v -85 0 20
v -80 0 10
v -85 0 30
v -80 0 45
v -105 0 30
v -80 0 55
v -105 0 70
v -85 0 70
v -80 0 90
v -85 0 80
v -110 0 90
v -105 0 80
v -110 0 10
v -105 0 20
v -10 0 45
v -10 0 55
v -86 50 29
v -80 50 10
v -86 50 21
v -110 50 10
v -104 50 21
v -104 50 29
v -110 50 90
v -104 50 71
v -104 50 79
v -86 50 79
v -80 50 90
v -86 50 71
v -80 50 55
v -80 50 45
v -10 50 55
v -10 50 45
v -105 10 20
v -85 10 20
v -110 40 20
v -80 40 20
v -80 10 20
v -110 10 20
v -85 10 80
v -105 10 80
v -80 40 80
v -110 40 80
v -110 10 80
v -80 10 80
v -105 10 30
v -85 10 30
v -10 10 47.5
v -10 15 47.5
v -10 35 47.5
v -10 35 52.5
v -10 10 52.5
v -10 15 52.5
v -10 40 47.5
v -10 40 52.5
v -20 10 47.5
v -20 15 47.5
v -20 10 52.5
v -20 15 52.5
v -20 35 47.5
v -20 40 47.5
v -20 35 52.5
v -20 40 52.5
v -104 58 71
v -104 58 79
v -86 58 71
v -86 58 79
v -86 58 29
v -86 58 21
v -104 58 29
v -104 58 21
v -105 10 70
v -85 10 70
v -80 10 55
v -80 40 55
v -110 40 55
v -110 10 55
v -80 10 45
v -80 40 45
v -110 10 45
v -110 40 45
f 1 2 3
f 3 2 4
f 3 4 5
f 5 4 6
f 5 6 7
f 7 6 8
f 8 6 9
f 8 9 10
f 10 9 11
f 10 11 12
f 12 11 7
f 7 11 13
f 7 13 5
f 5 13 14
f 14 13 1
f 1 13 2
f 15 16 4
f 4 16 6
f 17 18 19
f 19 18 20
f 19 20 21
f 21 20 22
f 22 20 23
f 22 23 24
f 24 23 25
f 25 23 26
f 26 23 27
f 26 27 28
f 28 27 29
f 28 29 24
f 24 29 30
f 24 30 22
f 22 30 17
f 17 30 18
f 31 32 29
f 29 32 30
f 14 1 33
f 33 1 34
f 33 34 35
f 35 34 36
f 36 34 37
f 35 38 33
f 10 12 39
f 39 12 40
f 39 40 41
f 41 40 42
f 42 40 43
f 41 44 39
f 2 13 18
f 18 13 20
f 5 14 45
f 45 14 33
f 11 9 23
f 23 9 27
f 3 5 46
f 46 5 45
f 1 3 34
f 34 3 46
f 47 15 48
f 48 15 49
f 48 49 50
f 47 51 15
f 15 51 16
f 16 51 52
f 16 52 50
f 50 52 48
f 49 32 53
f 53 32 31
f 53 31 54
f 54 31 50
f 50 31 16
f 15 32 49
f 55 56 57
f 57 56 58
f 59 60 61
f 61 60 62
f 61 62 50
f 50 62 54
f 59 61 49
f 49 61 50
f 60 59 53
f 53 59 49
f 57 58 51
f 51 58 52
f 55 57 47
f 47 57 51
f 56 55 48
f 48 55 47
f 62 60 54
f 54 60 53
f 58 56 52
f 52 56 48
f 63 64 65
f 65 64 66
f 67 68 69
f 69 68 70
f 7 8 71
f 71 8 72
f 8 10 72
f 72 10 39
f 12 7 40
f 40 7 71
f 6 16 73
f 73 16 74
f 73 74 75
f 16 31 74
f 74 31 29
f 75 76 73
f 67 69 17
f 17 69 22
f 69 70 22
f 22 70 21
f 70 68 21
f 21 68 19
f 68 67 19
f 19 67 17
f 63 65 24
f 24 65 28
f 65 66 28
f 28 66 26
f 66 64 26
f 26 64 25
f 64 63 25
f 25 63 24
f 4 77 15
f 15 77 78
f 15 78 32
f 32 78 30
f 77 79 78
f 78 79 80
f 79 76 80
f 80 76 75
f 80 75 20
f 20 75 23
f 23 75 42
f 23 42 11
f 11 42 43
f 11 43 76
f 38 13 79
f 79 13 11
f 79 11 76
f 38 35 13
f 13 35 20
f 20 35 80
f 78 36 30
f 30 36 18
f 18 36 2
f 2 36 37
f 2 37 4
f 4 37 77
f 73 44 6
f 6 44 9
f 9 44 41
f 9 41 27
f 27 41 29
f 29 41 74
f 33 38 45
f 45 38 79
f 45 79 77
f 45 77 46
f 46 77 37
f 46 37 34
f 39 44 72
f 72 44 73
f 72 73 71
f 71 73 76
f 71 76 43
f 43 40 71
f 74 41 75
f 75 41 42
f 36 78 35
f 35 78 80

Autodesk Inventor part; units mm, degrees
ref_plane "YZ Plane" through (0, 0, 0) normal (1, 0, 0) x (0, 1, 0)
ref_plane "XZ Plane" through (0, 0, 0) normal (0, 1, 0) x (-1, 0, 0)
ref_plane "XY Plane" through (0, 0, 0) normal (0, 0, 1) x (1, 0, 0)
sketch "Sketch1" plane through (0, 0, 0) normal (0, 1, 0) x (-1, 0, 0)
  line L0 (-10, -55) -> (-160, -55)
  line L1 (-160, -55) -> (-160, -45)
  line L2 (-160, -45) -> (-10, -45)
  line L3 (-10, -45) -> (-10, -55)
  line L4 (10, -55) -> (80, -55)
  line L5 (80, -55) -> (80, -90)
  line L6 (80, -90) -> (110, -90)
  line L7 (110, -90) -> (110, -10)
  line L8 (110, -10) -> (80, -10)
  line L9 (80, -10) -> (80, -45)
  line L10 (80, -45) -> (10, -45)
  line L11 (10, -45) -> (10, -55)
  line L12 (0, -122.2654) -> (0, -189.4683)
  line L13 (-10, 55) -> (-10, 45)
  line L14 (10, 55) -> (10, 45)
  line L15 (80, 10) -> (110, 10)
  line L16 (10, 45) -> (80, 45)
  line L17 (80, 45) -> (80, 10)
  line L18 (80, 55) -> (10, 55)
  line L19 (80, 90) -> (80, 55)
  line L20 (110, 10) -> (110, 90)
  line L21 (110, 90) -> (80, 90)
  line L22 (-160, 55) -> (-10, 55)
  line L23 (-160, 45) -> (-160, 55)
  line L24 (-10, 45) -> (-160, 45)
  point P0 (0, 0)
  dimension "d0" = 10
  dimension "d1" = 80
  dimension "d2" = 10
  dimension "d4" = 30
  dimension "d5" = 30
  dimension "d6" = 35
  dimension "d7" = 35
  dimension "d8" = 45
  dimension "d9" = 10
  dimension "d10" = 10
  dimension "d11" = 150
  dimension "d12" = 100
  dimension "d13" = 0
  dimension "d16" = 100
extrude "Extrusion1" add sketch "Sketch1" along normal blind 50
sketch "Sketch2" plane through (160, 0, 55) normal (1, 0, 0) x (0, 0, -1)
  line L0 (2.5, 40) -> (7.5, 40)
  line L1 (7.5, 40) -> (7.5, 35)
  line L2 (7.5, 35) -> (2.5, 35)
  line L3 (2.5, 35) -> (2.5, 40)
  line L4 (0, 50) -> (10, 50) projected
  line L5 (10, 0) -> (10, 50) projected
  line L6 (2.5, 15) -> (7.5, 15)
  line L7 (7.5, 15) -> (7.5, 10)
  line L8 (7.5, 10) -> (2.5, 10)
  line L9 (2.5, 10) -> (2.5, 15)
  line L10 (102.5, 40) -> (107.5, 40)
  line L11 (107.5, 40) -> (107.5, 35)
  line L12 (107.5, 35) -> (102.5, 35)
  line L13 (102.5, 35) -> (102.5, 40)
  line L14 (102.5, 15) -> (107.5, 15)
  line L15 (107.5, 15) -> (107.5, 10)
  line L16 (107.5, 10) -> (102.5, 10)
  line L17 (102.5, 10) -> (102.5, 15)
  point P0 (55, 0)
  dimension "d23" = 10
  dimension "d24" = 5
  dimension "d25" = 2.5
  dimension "d26" = 5
  dimension "d29" = 25
  dimension "d32" = 100
extrude "Extrusion2" cut sketch "Sketch2" against normal blind 200
sketch "Sketch3" plane through (0, 50, 0) normal (0, 1, 0) x (1, 0, 0)
  line L0 (-105, -20) -> (-85, -20)
  line L1 (-85, -20) -> (-85, -30)
  line L2 (-85, -30) -> (-105, -30)
  line L3 (-105, -30) -> (-105, -20)
  line L4 (-110, -10) -> (-110, -90) projected
  line L5 (-105, -70) -> (-85, -70)
  line L6 (-85, -70) -> (-85, -80)
  line L7 (-85, -80) -> (-105, -80)
  line L8 (-105, -80) -> (-105, -70)
  line L9 (-105, 80) -> (-85, 80)
  line L10 (-85, 80) -> (-85, 70)
  line L11 (-85, 70) -> (-105, 70)
  line L12 (-105, 70) -> (-105, 80)
  line L13 (-105, 30) -> (-85, 30)
  line L14 (-85, 30) -> (-85, 20)
  line L15 (-85, 20) -> (-105, 20)
  line L16 (-105, 20) -> (-105, 30)
  point P0 (0, 0)
  dimension "d37" = 20
  dimension "d38" = 10
  dimension "d39" = 20
  dimension "d40" = 85
  dimension "d43" = 50
  dimension "d46" = 100
extrude "Extrusion3" add sketch "Sketch3" along normal blind 8
sketch "Sketch4" plane through (0, 0, 0) normal (0, -1, 0) x (1, 0, 0)
  line L0 (-105, -70) -> (-85, -70) projected
  line L1 (-85, -70) -> (-85, -80) projected
  line L2 (-85, -80) -> (-105, -80) projected
  line L3 (-105, -80) -> (-105, -70) projected
  line L4 (-105, -20) -> (-85, -20) projected
  line L5 (-85, -20) -> (-85, -30) projected
  line L6 (-85, -30) -> (-105, -30) projected
  line L7 (-105, -30) -> (-105, -20) projected
  line L8 (-105, 30) -> (-85, 30) projected
  line L9 (-85, 30) -> (-85, 20) projected
  line L10 (-85, 20) -> (-105, 20) projected
  line L11 (-105, 20) -> (-105, 30) projected
  line L12 (-105, 80) -> (-85, 80) projected
  line L13 (-85, 80) -> (-85, 70) projected
  line L14 (-85, 70) -> (-105, 70) projected
  line L15 (-105, 70) -> (-105, 80) projected
  line L16 (-85, 80) -> (-105, 80)
  line L17 (-105, 80) -> (-105, 70)
  line L18 (-105, 70) -> (-85, 70)
  line L19 (-85, 70) -> (-85, 80)
  line L20 (-85, 30) -> (-105, 30)
  line L21 (-105, 30) -> (-105, 20)
  line L22 (-105, 20) -> (-85, 20)
  line L23 (-85, 20) -> (-85, 30)
  line L24 (-85, -20) -> (-105, -20)
  line L25 (-105, -20) -> (-105, -30)
  line L26 (-105, -30) -> (-85, -30)
  line L27 (-85, -30) -> (-85, -20)
  line L28 (-85, -70) -> (-105, -70)
  line L29 (-105, -70) -> (-105, -80)
  line L30 (-105, -80) -> (-85, -80)
  line L31 (-85, -80) -> (-85, -70)
  point P0 (0, 0)
extrude "Extrusion4" cut sketch "Sketch4" against normal blind 10
sketch "Sketch5" plane through (10, 0, 55) normal (0, 0, 1) x (1, 0, 0)
  line L0 (0, 0) -> (0, 50) projected
  line L1 (0, 50) -> (150, 50) projected
  line L2 (150, 0) -> (150, 50) projected
  line L3 (0, 0) -> (150, 0) projected
  line L4 (0, 35) -> (0, 40) projected
  line L5 (150, 35) -> (0, 35) projected
  line L6 (150, 40) -> (150, 35) projected
  line L7 (150, 40) -> (0, 40) projected
  line L8 (0, 10) -> (0, 15) projected
  line L9 (150, 10) -> (0, 10) projected
  line L10 (150, 15) -> (150, 10) projected
  line L11 (150, 15) -> (0, 15) projected
  line L12 (10, 40) -> (140, 40)
  line L13 (140, 40) -> (140, 35)
  line L14 (140, 35) -> (10, 35)
  line L15 (10, 35) -> (10, 40)
  line L16 (10, 15) -> (140, 15)
  line L17 (140, 15) -> (140, 10)
  line L18 (140, 10) -> (10, 10)
  line L19 (10, 10) -> (10, 15)
  point P0 (-10, 0)
  point P1 (10, 10)
  dimension "d53" = 10
  dimension "d54" = 10
  dimension "d55" = 10
  dimension "d56" = 10
extrude "Extrusion5" add sketch "Sketch5" against normal blind 10 contours L19 L11 L17 L9 | L15 L7 L13 L5
sketch "Sketch6" plane through (160, 0, -55) normal (0, 0, -1) x (-1, 0, 0)
  line L0 (150, 40) -> (150, 35) projected
  line L1 (0, 40) -> (150, 40) projected
  line L2 (0, 35) -> (0, 40) projected
  line L3 (0, 35) -> (150, 35) projected
  line L4 (150, 15) -> (150, 10) projected
  line L5 (0, 15) -> (150, 15) projected
  line L6 (0, 10) -> (0, 15) projected
  line L7 (0, 10) -> (150, 10) projected
  line L8 (10, 40) -> (140, 40)
  line L9 (140, 40) -> (140, 35)
  line L10 (140, 35) -> (10, 35)
  line L11 (10, 35) -> (10, 40)
  line L12 (10, 15) -> (140, 15)
  line L13 (140, 15) -> (140, 10)
  line L14 (140, 10) -> (10, 10)
  line L15 (10, 10) -> (10, 15)
  point P0 (160, 0)
  point P1 (140, 37.5)
  point P2 (10, 10)
  dimension "d59" = 10
  dimension "d60" = 10
  dimension "d61" = 10
  dimension "d62" = 10
extrude "Extrusion6" add sketch "Sketch6" against normal blind 10 contours L9 L3 L11 L1 | L13 L7 L15 L5
sketch "Sketch7" plane through (0, 58, 0) normal (0, 1, 0) x (1, 0, 0)
  line L0 (-105, -80) -> (-85, -80) projected
  line L1 (-85, -80) -> (-85, -70) projected
  line L2 (-85, -70) -> (-105, -70) projected
  line L3 (-105, -70) -> (-105, -80) projected
  line L4 (-105, -30) -> (-85, -30) projected
  line L5 (-85, -30) -> (-85, -20) projected
  line L6 (-85, -20) -> (-105, -20) projected
  line L7 (-105, -20) -> (-105, -30) projected
  line L8 (-105, 20) -> (-85, 20) projected
  line L9 (-85, 20) -> (-85, 30) projected
  line L10 (-85, 30) -> (-105, 30) projected
  line L11 (-105, 30) -> (-105, 20) projected
  line L12 (-105, 70) -> (-85, 70) projected
  line L13 (-85, 70) -> (-85, 80) projected
  line L14 (-85, 80) -> (-105, 80) projected
  line L15 (-105, 80) -> (-105, 70) projected
  line L16 (-104, -79) -> (-86, -79)
  line L17 (-86, -79) -> (-86, -71)
  line L18 (-86, -71) -> (-104, -71)
  line L19 (-104, -71) -> (-104, -79)
  line L20 (-86, -21) -> (-104, -21)
  line L21 (-104, -21) -> (-104, -29)
  line L22 (-104, -29) -> (-86, -29)
  line L23 (-86, -29) -> (-86, -21)
  line L24 (-86, 29) -> (-104, 29)
  line L25 (-104, 29) -> (-104, 21)
  line L26 (-104, 21) -> (-86, 21)
  line L27 (-86, 21) -> (-86, 29)
  line L28 (-86, 79) -> (-104, 79)
  line L29 (-104, 79) -> (-104, 71)
  line L30 (-104, 71) -> (-86, 71)
  line L31 (-86, 71) -> (-86, 79)
  line L32 (-105, -80) -> (-85, -80)
  line L33 (-85, -80) -> (-85, -70)
  line L34 (-85, -70) -> (-105, -70)
  line L35 (-105, -70) -> (-105, -80)
  line L36 (-105, -30) -> (-85, -30)
  line L37 (-85, -30) -> (-85, -20)
  line L38 (-85, -20) -> (-105, -20)
  line L39 (-105, -20) -> (-105, -30)
  line L40 (-105, 20) -> (-85, 20)
  line L41 (-85, 20) -> (-85, 30)
  line L42 (-85, 30) -> (-105, 30)
  line L43 (-105, 30) -> (-105, 20)
  line L44 (-105, 70) -> (-85, 70)
  line L45 (-85, 70) -> (-85, 80)
  line L46 (-85, 80) -> (-105, 80)
  line L47 (-105, 80) -> (-105, 70)
  point P0 (0, 0)
  dimension "d65" = 1
  dimension "d66" = 1
  dimension "d67" = 1
  dimension "d68" = 1
  dimension "d71" = 50
  dimension "d74" = 100
extrude "Extrusion7" cut sketch "Sketch7" against normal blind 8
sketch "Sketch8" plane through (-80, 0, 55) normal (0, 0, 1) x (1, 0, 0)
  line L0 (70, 40) -> (70, 35) projected
  line L1 (70, 40) -> (40, 40) projected
  line L2 (40, 40) -> (40, 35) projected
  line L3 (70, 35) -> (40, 35) projected
  line L4 (70, 15) -> (70, 10) projected
  line L5 (70, 15) -> (40, 15) projected
  line L6 (40, 15) -> (40, 10) projected
  line L7 (70, 10) -> (40, 10) projected
  line L8 (40, 40) -> (60, 40)
  line L9 (60, 40) -> (60, 35)
  line L10 (60, 35) -> (40, 35)
  line L11 (40, 35) -> (40, 40)
  line L12 (40, 15) -> (60, 15)
  line L13 (60, 15) -> (60, 10)
  line L14 (60, 10) -> (40, 10)
  line L15 (40, 10) -> (40, 15)
  point P0 (80, 0)
  point P1 (60, 15)
  point P2 (60, 40)
  dimension "d79" = 10
  dimension "d80" = 10
extrude "Extrusion8" add sketch "Sketch8" against normal blind 10 contours L9 L3 L2 L1 | L13 L7 L6 L5
sketch "Sketch9" plane through (-10, 0, -55) normal (0, 0, -1) x (-1, 0, 0)
  line L0 (0, 35) -> (0, 40) projected
  line L1 (0, 35) -> (30, 35) projected
  line L2 (30, 35) -> (30, 40) projected
  line L3 (0, 40) -> (30, 40) projected
  line L4 (0, 10) -> (0, 15) projected
  line L5 (0, 10) -> (30, 10) projected
  line L6 (30, 10) -> (30, 15) projected
  line L7 (0, 15) -> (30, 15) projected
  line L8 (30, 40) -> (10, 40)
  line L9 (10, 40) -> (10, 10)
  line L10 (10, 10) -> (30, 10)
  line L11 (30, 10) -> (30, 40)
  point P0 (-10, 0)
  point P1 (0, 37.5)
  dimension "d83" = 10
extrude "Extrusion9" add sketch "Sketch9" against normal blind 10 contours L9 L3 L2 L1 | L1 L11 L7 L9 | L7 L6 L5 L9
sketch "Sketch10" plane through (0, 58, 0) normal (0, 1, 0) x (1, 0, 0)
  line L0 (-140, 100) -> (-140, 0)
  line L1 (-140, 0) -> (0, 0)
  line L2 (0, 0) -> (0, -100)
  line L3 (0, -100) -> (180, -100)
  line L4 (180, -100) -> (180, 100)
  line L5 (180, 100) -> (-140, 100)
  dimension "d86" = 100
  dimension "d87" = 320
  dimension "d88" = 200
  dimension "d89" = 180
extrude "Extrusion10" cut sketch "Sketch10" against normal through all
sketch "Sketch11" plane through (-80, 0, 90) normal (1, 0, 0) x (0, 0, -1)
  line L0 (0, 0) -> (35, 0) projected
  line L1 (35, 0) -> (35, 50) projected
  line L2 (0, 50) -> (35, 50) projected
  line L3 (0, 0) -> (0, 50) projected
  line L4 (45, 0) -> (80, 0) projected
  line L5 (80, 0) -> (80, 50) projected
  line L6 (45, 50) -> (80, 50) projected
  line L7 (45, 0) -> (45, 50) projected
  line L8 (35, 40) -> (10, 40)
  line L9 (10, 40) -> (10, 10)
  line L10 (10, 10) -> (35, 10)
  line L11 (35, 10) -> (35, 40)
  line L12 (45, 40) -> (70, 40)
  line L13 (70, 40) -> (70, 10)
  line L14 (70, 10) -> (45, 10)
  line L15 (45, 10) -> (45, 40)
  point P0 (90, 0)
  point P1 (17.5, 0)
  point P2 (35, 10)
  dimension "d92" = 25
  dimension "d93" = 25
  dimension "d94" = 30
  dimension "d95" = 10
extrude "Extrusion11" cut sketch "Sketch11" against normal blind 30 contours L10 L9 L8 L1 | L7 L12 L13 L14
properties part number "Hurdle Split"
